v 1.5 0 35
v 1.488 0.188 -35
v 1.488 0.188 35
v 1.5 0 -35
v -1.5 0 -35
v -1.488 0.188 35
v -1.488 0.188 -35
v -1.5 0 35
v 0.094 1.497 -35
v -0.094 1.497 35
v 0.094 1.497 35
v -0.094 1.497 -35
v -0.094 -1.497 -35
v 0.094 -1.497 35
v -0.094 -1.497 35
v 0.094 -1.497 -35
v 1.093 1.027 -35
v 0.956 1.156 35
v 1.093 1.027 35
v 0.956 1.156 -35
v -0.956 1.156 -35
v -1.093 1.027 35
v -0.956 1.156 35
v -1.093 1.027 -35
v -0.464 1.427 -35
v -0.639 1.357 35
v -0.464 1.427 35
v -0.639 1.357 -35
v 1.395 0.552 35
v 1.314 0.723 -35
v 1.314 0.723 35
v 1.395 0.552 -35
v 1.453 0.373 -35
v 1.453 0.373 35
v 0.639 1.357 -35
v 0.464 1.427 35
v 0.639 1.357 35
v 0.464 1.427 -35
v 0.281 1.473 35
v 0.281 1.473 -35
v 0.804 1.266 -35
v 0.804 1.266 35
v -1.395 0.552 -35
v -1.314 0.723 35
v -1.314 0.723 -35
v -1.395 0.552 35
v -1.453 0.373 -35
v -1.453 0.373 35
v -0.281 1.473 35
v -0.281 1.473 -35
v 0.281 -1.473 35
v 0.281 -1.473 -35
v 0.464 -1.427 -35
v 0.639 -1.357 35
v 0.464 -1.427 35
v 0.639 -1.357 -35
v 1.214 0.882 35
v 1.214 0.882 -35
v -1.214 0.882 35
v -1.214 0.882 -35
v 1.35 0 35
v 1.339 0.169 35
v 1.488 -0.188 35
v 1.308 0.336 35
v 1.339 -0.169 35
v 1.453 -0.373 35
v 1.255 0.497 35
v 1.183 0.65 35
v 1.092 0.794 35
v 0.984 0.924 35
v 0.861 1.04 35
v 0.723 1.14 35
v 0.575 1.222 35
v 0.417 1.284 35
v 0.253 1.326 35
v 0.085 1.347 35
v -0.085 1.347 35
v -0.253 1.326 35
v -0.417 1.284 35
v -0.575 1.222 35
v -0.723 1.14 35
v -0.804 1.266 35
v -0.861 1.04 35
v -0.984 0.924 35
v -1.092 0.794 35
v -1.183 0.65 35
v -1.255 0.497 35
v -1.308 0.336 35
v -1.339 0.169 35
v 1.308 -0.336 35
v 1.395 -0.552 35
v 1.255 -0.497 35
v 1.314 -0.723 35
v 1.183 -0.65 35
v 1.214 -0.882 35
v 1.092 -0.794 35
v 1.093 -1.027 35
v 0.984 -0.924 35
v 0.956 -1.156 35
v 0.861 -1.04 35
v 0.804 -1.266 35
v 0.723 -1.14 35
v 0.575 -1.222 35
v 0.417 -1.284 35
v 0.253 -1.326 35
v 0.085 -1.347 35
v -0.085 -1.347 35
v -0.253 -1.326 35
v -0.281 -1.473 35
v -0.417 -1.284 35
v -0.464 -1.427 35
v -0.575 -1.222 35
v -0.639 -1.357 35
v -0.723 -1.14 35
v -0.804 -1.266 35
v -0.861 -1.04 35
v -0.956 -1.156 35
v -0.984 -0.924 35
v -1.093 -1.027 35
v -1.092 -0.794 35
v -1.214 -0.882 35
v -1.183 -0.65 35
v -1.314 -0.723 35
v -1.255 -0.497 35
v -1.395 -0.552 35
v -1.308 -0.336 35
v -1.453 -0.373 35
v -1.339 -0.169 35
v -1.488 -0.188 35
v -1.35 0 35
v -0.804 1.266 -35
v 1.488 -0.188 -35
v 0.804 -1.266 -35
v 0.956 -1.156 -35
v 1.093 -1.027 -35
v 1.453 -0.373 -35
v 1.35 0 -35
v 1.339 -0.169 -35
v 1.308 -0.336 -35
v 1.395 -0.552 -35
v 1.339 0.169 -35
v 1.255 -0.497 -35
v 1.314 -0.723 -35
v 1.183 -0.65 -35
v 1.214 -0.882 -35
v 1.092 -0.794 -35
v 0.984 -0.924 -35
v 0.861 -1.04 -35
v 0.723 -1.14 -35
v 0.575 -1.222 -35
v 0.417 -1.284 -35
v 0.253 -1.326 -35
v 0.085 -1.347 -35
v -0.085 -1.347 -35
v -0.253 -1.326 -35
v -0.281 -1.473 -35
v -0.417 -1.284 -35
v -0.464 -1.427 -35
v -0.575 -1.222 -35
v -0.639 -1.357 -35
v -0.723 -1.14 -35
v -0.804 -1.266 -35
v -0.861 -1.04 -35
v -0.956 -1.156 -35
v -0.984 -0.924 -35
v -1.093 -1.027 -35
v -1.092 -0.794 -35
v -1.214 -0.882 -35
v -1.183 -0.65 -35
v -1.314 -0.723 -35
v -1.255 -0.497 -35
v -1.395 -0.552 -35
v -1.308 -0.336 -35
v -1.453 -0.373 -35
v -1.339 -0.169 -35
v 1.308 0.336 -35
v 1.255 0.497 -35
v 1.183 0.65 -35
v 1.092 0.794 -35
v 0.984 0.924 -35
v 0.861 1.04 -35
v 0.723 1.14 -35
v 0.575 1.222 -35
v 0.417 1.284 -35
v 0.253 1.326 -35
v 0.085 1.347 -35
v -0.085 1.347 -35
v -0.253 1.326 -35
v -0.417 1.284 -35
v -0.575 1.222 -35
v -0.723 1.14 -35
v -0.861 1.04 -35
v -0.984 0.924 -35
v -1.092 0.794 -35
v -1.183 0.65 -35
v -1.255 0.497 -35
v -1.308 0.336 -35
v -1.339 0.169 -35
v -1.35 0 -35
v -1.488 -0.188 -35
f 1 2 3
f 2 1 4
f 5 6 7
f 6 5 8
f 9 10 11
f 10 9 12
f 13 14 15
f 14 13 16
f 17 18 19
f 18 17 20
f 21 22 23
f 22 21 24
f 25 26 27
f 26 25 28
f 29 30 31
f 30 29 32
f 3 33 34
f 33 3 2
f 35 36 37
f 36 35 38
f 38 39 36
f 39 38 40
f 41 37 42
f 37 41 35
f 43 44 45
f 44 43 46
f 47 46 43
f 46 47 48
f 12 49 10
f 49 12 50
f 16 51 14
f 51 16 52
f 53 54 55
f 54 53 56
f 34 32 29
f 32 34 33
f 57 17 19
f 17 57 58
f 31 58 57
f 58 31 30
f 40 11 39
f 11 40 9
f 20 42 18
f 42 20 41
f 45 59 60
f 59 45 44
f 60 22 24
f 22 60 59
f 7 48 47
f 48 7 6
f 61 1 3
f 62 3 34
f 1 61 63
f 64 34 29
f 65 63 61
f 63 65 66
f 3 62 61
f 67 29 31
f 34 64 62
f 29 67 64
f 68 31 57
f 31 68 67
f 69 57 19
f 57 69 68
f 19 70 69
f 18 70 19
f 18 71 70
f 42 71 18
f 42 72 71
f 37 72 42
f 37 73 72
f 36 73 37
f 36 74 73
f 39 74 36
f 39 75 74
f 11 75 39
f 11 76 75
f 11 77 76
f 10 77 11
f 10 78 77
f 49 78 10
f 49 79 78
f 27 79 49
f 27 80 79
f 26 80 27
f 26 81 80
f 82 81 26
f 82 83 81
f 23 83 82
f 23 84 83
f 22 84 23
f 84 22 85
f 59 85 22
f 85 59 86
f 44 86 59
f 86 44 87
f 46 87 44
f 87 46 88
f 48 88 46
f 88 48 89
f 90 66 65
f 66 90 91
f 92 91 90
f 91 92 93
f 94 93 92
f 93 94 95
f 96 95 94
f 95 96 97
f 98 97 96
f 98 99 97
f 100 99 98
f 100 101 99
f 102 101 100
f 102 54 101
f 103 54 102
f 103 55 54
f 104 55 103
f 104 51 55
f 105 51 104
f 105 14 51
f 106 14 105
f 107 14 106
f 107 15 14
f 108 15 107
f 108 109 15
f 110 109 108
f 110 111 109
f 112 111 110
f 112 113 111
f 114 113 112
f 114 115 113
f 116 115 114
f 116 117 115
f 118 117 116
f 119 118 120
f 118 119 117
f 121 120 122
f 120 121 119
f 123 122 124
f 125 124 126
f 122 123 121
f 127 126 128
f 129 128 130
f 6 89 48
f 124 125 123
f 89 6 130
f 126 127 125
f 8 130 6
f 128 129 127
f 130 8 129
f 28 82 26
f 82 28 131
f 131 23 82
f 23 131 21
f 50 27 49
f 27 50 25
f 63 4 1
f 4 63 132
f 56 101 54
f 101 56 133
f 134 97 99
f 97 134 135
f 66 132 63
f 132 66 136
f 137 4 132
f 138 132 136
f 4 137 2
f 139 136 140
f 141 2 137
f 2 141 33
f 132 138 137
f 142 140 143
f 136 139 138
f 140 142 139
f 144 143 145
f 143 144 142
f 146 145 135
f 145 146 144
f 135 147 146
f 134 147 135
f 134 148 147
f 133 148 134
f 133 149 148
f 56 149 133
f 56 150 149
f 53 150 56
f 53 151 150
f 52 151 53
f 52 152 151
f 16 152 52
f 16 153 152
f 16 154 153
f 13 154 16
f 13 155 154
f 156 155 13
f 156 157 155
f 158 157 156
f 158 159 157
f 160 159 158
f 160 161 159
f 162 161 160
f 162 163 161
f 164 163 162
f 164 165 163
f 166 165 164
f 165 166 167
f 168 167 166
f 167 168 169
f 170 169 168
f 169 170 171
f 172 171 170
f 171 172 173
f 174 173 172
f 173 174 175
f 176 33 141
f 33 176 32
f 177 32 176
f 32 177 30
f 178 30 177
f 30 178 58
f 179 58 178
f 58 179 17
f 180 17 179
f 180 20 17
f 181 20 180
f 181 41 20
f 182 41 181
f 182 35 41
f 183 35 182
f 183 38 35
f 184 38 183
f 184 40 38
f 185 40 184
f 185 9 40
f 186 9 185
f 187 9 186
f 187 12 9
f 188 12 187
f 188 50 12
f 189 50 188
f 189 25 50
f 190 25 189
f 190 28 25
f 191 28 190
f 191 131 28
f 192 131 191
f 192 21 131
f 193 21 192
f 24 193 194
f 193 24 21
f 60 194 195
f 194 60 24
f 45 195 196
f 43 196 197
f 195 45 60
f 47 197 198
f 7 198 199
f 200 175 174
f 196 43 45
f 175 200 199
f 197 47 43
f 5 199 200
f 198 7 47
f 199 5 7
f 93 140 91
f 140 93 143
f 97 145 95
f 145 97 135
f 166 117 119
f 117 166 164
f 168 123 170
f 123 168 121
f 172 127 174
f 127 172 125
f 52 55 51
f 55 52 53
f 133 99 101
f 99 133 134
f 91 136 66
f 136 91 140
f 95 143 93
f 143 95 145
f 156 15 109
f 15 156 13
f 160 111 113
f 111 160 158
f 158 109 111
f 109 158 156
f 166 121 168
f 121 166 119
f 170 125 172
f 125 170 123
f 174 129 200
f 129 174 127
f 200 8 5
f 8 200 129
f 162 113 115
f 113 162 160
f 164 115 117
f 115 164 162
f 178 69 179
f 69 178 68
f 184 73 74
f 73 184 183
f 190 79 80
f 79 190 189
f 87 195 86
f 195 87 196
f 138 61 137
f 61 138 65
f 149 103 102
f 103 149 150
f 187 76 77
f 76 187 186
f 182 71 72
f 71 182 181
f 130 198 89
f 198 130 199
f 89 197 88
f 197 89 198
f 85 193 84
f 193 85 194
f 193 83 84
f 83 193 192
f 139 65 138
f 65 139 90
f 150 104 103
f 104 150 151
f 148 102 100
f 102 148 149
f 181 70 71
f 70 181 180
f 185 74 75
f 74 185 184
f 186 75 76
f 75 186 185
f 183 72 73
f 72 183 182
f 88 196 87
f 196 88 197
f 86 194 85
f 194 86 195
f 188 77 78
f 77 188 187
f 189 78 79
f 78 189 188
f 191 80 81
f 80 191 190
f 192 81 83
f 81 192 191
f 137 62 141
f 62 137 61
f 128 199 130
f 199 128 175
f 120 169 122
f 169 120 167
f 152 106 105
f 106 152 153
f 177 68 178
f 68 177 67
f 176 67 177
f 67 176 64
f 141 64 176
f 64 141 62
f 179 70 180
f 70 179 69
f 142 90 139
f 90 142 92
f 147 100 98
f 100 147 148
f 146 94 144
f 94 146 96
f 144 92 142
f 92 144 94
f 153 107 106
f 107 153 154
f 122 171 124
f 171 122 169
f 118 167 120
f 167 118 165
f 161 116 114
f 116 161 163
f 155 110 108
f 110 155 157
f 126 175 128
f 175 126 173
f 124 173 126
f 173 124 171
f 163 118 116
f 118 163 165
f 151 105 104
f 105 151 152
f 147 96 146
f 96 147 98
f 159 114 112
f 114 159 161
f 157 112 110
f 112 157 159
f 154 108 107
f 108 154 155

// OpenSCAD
$fn = 50;


difference() {
	union() {
		translate(v = [0, 0, -35.0000000000]) {
			cylinder(h = 70, r = 1.5000000000);
		}
	}
	union() {
		translate(v = [0, 0, -100.0000000000]) {
			cylinder(h = 200, r = 1.3500000000);
		}
	}
}
